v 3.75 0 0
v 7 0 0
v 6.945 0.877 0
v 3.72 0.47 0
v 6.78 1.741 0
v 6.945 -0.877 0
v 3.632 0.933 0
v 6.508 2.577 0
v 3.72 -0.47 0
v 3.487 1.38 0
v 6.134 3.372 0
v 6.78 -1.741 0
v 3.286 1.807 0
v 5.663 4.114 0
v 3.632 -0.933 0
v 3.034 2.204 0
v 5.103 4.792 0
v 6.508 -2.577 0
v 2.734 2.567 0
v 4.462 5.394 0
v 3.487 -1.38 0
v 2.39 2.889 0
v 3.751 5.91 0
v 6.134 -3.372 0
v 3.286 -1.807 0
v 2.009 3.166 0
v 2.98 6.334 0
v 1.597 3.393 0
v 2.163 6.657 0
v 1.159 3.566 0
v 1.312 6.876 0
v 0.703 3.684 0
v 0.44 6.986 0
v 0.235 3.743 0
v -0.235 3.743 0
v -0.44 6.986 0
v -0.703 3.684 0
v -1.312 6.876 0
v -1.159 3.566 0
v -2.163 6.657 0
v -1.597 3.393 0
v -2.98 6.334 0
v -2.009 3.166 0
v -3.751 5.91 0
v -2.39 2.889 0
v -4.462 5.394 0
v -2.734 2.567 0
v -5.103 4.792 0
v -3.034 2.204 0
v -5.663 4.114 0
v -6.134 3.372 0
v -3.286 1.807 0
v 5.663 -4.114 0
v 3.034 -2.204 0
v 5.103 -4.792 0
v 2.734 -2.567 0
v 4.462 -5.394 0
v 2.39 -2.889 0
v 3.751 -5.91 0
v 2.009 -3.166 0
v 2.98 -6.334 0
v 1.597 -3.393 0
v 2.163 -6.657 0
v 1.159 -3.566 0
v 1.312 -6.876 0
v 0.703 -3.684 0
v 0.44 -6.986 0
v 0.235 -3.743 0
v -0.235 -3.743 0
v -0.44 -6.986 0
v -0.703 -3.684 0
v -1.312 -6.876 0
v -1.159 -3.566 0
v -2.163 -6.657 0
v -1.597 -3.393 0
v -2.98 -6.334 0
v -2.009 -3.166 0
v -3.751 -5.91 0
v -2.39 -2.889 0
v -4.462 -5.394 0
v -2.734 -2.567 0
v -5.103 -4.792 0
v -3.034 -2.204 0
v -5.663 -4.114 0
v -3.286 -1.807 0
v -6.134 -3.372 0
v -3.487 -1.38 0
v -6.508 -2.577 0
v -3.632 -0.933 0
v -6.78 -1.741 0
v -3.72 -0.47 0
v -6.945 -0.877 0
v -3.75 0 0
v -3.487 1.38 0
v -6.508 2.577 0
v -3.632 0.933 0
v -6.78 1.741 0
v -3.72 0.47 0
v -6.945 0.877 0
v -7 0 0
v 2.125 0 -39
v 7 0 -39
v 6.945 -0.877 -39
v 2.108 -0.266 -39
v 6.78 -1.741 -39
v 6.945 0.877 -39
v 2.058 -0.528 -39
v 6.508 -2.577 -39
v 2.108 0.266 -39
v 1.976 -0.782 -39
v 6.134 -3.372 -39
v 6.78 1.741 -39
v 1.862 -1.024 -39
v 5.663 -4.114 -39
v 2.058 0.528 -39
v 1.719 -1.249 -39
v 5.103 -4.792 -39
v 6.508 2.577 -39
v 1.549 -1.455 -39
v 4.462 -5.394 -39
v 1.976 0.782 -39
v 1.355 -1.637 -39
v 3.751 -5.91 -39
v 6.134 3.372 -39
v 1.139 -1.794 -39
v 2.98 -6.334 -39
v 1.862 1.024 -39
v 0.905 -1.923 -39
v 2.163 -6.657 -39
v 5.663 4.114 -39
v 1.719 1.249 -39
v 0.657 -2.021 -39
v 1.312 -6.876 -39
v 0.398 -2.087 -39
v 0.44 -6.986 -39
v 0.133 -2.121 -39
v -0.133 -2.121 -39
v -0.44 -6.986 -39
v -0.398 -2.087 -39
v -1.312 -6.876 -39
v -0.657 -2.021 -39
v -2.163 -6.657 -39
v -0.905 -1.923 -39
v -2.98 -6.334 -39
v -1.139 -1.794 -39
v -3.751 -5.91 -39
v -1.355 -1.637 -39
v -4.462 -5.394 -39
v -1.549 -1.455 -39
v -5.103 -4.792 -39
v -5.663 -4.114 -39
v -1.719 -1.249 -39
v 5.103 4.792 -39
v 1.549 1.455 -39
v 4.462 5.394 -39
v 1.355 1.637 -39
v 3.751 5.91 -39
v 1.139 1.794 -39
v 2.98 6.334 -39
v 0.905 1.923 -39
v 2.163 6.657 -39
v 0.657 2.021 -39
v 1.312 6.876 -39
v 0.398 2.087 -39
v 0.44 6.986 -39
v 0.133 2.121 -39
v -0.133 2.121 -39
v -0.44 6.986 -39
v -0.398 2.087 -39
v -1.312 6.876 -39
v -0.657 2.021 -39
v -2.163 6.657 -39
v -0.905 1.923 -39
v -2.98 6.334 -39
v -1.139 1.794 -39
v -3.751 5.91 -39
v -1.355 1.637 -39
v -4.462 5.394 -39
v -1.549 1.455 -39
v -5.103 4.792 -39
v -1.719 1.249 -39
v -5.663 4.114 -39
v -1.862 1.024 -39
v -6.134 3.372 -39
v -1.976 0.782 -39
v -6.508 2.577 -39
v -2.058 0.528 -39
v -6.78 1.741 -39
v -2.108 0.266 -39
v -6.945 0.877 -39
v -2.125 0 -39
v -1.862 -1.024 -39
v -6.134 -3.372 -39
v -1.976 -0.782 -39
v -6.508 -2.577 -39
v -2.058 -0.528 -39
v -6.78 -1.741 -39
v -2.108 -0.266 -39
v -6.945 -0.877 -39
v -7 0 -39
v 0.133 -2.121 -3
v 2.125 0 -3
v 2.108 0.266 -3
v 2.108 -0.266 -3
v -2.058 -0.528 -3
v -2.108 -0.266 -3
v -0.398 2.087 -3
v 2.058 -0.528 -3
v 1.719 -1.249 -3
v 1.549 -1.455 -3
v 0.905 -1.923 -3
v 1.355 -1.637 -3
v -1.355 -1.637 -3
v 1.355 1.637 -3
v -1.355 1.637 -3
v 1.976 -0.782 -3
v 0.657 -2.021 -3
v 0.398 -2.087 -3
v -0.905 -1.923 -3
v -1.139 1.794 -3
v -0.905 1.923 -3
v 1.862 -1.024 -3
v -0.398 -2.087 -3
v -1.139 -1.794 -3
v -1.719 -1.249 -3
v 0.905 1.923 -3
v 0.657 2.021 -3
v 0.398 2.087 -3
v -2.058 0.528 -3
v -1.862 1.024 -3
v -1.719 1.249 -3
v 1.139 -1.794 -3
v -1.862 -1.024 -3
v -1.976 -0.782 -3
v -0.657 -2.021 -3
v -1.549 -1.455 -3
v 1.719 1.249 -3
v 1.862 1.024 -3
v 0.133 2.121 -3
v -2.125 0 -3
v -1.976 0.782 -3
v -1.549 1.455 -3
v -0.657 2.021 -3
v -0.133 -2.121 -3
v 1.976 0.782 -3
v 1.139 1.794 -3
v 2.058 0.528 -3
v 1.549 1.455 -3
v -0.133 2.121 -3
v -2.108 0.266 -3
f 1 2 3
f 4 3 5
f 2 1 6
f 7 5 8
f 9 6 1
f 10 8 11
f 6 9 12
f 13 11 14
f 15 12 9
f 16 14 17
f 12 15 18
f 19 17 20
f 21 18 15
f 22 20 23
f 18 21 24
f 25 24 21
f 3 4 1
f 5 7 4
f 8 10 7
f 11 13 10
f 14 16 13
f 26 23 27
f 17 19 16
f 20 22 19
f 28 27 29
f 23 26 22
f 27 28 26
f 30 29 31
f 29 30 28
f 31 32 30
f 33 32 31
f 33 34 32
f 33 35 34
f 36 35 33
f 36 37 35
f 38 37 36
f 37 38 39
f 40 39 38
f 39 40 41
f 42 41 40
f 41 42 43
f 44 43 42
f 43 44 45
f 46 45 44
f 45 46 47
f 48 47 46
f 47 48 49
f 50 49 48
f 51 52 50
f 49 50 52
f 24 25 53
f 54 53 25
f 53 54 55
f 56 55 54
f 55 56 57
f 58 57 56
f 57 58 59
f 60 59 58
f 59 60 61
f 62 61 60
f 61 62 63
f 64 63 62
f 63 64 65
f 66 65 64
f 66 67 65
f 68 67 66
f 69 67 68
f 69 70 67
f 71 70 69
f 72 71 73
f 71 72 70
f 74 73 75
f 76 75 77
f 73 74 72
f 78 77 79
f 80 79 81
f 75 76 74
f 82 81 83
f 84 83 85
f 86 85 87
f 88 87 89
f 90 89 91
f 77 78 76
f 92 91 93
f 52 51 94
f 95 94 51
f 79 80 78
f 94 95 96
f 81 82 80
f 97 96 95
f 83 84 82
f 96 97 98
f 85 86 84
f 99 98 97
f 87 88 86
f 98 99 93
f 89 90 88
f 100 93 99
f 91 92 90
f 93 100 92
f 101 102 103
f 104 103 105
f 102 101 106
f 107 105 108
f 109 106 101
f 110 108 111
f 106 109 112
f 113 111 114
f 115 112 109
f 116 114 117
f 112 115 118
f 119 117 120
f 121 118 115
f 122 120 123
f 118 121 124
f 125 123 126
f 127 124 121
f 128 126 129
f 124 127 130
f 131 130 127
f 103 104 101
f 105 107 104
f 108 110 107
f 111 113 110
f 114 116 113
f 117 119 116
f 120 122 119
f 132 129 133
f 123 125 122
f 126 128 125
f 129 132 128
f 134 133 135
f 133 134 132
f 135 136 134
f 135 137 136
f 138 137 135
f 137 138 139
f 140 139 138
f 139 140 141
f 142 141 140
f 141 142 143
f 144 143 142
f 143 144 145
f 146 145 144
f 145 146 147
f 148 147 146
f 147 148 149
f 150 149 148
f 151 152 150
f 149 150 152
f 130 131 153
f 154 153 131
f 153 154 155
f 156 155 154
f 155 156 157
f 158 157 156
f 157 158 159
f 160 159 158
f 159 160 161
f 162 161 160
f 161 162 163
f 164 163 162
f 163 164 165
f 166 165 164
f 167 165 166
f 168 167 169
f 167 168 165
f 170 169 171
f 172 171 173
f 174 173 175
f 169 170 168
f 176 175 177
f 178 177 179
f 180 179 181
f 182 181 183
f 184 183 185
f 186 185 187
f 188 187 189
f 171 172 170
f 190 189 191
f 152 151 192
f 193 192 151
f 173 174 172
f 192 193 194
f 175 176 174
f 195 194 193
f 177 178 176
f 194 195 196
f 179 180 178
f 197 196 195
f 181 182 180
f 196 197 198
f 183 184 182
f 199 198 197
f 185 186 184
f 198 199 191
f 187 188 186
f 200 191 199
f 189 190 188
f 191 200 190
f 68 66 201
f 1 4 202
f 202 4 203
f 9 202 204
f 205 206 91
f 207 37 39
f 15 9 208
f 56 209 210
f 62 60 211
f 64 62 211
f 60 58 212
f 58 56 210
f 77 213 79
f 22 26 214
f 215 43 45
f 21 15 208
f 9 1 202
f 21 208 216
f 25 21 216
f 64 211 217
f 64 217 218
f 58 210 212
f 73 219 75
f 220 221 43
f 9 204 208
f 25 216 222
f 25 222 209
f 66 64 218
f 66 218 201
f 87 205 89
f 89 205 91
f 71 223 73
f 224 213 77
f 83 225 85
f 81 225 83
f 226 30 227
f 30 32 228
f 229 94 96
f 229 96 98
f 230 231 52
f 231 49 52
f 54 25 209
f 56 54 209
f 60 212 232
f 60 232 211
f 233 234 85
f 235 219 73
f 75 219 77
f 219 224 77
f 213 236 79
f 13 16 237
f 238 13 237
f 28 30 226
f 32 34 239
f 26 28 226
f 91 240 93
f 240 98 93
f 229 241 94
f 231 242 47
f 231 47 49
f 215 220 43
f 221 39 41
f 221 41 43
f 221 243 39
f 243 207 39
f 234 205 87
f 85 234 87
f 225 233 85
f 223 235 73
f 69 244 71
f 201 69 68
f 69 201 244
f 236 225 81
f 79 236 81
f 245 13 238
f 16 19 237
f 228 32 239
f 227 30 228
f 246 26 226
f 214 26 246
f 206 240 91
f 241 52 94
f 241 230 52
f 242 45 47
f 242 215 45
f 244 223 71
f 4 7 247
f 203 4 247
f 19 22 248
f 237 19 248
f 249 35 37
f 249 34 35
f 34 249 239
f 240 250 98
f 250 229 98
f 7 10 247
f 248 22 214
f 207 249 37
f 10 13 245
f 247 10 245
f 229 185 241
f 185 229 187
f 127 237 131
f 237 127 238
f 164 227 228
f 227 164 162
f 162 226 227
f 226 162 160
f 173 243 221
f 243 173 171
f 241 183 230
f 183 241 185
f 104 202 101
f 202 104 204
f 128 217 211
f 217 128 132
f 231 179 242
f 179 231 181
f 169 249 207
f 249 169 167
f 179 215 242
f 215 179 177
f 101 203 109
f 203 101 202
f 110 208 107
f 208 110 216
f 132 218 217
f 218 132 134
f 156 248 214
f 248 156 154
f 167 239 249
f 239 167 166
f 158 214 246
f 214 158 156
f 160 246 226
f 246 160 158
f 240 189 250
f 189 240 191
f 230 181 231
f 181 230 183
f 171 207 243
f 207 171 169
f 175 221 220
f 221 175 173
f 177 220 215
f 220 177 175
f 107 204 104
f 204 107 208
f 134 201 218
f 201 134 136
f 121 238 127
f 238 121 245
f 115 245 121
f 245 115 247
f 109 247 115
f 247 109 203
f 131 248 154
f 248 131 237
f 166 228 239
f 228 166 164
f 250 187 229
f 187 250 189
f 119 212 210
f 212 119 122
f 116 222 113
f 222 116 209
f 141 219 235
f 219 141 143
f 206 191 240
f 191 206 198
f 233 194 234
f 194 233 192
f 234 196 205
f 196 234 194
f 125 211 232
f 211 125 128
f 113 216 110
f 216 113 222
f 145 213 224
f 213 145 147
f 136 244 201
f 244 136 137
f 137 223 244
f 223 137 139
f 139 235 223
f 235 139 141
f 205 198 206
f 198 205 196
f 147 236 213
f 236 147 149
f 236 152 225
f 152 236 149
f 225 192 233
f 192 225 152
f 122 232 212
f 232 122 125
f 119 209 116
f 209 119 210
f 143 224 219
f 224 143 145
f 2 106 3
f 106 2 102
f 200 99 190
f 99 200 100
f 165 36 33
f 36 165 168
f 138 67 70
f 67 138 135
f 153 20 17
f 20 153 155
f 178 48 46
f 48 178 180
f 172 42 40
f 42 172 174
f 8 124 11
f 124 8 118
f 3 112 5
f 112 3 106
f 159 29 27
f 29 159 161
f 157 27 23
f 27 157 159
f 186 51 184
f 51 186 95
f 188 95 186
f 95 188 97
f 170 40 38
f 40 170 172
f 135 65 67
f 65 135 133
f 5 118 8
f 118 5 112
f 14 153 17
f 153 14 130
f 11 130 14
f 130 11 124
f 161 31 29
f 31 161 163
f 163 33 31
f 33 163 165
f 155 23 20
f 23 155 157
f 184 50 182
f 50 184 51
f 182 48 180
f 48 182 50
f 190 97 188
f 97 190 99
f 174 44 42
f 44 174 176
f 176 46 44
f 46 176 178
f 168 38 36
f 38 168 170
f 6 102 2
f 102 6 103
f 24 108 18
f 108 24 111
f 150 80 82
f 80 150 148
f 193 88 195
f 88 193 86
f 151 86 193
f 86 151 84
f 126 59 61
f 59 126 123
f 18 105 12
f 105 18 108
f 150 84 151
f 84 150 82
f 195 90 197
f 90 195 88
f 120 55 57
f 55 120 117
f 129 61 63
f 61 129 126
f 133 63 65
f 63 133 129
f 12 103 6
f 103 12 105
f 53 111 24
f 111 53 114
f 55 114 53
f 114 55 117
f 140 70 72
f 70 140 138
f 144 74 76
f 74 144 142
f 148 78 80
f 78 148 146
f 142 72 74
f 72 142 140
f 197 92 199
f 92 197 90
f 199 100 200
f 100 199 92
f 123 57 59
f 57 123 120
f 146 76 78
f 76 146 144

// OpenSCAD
$fn = 50;


difference() {
	union() {
		translate(v = [0, 0, -39.0000000000]) {
			cylinder(h = 39, r = 7.0000000000);
		}
		cylinder(h = 0, r = 17.0000000000);
	}
	union() {
		translate(v = [0, 0, 0]) {
			rotate(a = [0, 0, 0]) {
				difference() {
					union() {
						#translate(v = [0, 0, -39.0000000000]) {
							cylinder(h = 39, r = 2.0000000000);
						}
						#translate(v = [0, 0, -3]) {
							cylinder(h = 3, r = 7.0000000000, r1 = 2.1250000000, r2 = 3.7500000000);
						}
						#translate(v = [0, 0, -39.0000000000]) {
							cylinder(h = 39, r = 2.1250000000);
						}
						#translate(v = [0, 0, -39.0000000000]) {
							cylinder(h = 39, r = 2.0000000000);
						}
					}
					union();
				}
			}
		}
	}
}
